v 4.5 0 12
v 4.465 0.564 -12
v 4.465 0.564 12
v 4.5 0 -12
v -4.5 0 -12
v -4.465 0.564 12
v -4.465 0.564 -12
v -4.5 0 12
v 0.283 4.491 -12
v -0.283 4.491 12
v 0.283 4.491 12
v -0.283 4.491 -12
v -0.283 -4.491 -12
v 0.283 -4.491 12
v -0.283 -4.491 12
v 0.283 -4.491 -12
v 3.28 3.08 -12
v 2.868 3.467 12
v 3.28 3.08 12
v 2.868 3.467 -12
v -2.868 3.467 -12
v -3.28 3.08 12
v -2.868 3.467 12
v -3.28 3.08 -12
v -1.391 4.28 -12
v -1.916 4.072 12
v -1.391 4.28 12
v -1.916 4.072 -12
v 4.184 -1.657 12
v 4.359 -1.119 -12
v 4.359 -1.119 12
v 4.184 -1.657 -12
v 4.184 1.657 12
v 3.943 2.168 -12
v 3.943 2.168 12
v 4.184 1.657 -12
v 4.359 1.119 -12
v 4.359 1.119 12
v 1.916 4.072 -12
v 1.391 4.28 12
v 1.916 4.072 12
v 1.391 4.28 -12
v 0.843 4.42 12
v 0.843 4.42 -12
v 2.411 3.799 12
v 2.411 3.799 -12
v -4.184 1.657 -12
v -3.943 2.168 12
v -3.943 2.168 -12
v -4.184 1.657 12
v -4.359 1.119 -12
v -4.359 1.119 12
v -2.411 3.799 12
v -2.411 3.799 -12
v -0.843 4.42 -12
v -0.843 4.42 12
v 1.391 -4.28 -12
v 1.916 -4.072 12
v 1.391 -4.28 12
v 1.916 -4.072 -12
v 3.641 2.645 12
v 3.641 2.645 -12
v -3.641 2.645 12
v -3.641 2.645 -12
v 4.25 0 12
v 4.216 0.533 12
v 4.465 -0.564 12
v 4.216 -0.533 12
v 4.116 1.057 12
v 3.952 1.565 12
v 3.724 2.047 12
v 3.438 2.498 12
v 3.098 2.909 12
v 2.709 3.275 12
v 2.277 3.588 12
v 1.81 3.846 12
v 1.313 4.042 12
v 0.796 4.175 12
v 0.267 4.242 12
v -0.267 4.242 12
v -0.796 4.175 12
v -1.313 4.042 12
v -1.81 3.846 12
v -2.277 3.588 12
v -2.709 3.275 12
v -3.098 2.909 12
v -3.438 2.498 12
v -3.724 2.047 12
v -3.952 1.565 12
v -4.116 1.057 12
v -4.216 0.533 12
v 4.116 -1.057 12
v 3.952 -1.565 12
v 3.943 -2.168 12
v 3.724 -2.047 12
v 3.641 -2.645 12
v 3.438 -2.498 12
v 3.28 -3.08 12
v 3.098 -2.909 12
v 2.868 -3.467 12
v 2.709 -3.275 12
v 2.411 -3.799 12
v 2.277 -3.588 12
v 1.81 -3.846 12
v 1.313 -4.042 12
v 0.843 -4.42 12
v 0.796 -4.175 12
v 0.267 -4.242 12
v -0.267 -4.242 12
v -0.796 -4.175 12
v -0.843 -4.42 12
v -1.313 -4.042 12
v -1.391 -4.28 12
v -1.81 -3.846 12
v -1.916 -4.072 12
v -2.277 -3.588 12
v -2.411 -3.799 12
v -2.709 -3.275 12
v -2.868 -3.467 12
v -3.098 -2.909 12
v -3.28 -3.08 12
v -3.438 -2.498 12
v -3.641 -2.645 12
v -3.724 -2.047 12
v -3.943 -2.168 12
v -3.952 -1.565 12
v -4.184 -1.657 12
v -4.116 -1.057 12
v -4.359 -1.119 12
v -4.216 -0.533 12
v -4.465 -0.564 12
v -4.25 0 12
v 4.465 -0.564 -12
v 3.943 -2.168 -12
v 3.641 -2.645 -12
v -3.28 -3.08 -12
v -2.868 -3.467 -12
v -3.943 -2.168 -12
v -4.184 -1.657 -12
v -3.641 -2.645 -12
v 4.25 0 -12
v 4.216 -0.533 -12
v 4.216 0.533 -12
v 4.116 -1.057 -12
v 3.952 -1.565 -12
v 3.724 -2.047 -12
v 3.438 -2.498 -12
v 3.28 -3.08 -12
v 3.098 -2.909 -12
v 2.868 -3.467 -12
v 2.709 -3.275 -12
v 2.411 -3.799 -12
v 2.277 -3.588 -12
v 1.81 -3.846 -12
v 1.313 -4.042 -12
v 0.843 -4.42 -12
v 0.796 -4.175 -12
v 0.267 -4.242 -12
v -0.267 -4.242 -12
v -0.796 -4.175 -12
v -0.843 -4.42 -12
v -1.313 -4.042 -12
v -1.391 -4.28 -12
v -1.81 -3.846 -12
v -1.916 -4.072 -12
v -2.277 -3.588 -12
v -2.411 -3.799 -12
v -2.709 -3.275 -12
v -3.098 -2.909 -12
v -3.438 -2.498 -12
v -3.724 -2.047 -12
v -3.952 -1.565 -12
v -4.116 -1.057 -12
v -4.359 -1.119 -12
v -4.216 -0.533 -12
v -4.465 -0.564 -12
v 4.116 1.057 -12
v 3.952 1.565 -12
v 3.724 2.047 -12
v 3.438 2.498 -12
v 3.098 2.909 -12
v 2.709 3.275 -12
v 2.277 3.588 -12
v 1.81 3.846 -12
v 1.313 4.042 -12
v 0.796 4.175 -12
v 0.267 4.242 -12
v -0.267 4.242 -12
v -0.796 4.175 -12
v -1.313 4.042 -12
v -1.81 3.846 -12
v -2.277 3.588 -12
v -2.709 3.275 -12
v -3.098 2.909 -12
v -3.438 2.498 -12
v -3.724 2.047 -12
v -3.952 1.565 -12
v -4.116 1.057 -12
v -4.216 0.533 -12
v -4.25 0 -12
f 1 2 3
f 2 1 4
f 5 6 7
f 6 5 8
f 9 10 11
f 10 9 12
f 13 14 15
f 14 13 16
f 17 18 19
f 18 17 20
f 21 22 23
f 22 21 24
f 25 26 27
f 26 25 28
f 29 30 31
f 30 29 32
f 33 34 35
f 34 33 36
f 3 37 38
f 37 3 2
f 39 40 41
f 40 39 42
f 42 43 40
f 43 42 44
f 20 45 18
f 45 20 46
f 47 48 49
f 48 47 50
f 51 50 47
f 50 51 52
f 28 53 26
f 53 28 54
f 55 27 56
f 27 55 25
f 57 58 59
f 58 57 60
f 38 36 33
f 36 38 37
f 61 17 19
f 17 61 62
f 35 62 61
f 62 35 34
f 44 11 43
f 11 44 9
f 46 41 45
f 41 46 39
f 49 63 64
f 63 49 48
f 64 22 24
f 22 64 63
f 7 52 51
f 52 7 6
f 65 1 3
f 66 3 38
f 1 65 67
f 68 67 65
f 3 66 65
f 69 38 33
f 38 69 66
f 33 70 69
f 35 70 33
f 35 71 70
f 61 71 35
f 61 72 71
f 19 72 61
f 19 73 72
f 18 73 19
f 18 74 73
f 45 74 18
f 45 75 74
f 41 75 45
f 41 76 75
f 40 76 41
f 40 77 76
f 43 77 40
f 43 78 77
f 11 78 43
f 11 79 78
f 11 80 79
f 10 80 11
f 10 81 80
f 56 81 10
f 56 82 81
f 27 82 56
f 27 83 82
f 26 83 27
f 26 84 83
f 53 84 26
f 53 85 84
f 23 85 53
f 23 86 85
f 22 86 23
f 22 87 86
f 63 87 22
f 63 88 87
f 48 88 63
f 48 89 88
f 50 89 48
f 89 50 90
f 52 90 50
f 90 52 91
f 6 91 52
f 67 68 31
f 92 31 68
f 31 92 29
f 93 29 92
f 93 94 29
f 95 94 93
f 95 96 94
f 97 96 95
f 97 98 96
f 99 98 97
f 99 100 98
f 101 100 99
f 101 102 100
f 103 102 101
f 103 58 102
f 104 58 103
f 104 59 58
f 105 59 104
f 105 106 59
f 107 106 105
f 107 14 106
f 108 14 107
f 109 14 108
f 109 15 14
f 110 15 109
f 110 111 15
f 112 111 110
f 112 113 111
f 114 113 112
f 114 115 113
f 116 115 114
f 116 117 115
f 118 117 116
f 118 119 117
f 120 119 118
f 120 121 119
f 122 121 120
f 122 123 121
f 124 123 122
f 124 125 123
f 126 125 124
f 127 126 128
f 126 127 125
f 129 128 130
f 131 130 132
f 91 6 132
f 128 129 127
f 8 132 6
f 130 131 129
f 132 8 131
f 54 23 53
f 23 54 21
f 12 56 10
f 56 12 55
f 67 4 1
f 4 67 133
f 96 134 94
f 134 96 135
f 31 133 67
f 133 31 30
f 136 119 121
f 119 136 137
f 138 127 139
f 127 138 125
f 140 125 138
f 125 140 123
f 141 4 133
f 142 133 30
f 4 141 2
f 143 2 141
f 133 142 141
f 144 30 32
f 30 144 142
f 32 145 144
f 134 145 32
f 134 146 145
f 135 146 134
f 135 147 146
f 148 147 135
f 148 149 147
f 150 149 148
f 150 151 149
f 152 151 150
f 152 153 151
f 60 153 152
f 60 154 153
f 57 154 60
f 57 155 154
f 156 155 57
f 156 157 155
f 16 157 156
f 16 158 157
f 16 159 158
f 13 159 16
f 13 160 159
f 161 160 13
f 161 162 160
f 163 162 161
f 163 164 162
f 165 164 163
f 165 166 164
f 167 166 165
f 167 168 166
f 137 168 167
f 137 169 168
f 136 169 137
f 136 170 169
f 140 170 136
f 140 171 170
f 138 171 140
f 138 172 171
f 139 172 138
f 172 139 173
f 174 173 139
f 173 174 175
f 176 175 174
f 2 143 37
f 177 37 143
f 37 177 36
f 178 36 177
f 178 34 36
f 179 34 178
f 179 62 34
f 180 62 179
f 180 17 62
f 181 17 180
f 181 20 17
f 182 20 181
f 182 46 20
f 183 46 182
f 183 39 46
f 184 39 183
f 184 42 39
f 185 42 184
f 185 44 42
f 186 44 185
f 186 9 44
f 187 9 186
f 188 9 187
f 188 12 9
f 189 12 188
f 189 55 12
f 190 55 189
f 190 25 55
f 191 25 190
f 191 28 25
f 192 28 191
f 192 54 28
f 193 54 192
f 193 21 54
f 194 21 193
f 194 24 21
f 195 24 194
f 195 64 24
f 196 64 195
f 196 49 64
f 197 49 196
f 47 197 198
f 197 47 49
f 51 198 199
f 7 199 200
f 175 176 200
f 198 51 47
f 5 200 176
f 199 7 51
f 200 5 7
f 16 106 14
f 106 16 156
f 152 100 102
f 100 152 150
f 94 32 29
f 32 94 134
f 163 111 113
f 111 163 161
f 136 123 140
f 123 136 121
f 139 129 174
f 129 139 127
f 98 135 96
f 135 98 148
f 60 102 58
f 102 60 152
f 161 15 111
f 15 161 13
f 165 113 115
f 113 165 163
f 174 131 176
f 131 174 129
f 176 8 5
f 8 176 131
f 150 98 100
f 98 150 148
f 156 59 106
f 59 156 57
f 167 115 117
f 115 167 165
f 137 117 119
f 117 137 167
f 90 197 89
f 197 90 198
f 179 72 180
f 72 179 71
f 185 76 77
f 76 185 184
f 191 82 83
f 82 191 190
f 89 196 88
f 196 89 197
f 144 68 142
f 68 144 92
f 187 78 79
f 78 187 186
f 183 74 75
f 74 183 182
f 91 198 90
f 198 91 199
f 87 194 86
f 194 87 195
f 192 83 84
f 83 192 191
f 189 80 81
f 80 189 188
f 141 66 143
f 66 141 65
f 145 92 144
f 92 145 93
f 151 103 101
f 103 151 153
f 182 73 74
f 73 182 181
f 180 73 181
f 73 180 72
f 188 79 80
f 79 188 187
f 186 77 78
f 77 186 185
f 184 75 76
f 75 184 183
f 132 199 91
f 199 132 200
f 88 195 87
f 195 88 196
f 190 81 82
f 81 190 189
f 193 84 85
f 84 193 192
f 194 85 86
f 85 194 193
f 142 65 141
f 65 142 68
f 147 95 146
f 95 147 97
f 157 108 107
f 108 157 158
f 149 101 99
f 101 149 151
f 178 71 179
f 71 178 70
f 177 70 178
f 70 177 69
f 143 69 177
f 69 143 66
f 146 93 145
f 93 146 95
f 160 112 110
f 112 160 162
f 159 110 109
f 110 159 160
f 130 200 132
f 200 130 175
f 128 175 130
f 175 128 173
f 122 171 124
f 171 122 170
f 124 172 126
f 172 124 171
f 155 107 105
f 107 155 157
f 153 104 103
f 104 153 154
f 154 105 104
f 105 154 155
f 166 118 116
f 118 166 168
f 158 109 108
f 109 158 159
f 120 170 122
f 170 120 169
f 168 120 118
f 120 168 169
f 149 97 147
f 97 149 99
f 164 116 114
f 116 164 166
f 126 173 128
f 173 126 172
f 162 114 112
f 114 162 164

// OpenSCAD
$fn = 50;


difference() {
	union() {
		translate(v = [0, 0, -12.0000000000]) {
			cylinder(h = 24, r = 4.5000000000);
		}
	}
	union() {
		translate(v = [0, 0, -100.0000000000]) {
			cylinder(h = 200, r = 4.2500000000);
		}
	}
}
